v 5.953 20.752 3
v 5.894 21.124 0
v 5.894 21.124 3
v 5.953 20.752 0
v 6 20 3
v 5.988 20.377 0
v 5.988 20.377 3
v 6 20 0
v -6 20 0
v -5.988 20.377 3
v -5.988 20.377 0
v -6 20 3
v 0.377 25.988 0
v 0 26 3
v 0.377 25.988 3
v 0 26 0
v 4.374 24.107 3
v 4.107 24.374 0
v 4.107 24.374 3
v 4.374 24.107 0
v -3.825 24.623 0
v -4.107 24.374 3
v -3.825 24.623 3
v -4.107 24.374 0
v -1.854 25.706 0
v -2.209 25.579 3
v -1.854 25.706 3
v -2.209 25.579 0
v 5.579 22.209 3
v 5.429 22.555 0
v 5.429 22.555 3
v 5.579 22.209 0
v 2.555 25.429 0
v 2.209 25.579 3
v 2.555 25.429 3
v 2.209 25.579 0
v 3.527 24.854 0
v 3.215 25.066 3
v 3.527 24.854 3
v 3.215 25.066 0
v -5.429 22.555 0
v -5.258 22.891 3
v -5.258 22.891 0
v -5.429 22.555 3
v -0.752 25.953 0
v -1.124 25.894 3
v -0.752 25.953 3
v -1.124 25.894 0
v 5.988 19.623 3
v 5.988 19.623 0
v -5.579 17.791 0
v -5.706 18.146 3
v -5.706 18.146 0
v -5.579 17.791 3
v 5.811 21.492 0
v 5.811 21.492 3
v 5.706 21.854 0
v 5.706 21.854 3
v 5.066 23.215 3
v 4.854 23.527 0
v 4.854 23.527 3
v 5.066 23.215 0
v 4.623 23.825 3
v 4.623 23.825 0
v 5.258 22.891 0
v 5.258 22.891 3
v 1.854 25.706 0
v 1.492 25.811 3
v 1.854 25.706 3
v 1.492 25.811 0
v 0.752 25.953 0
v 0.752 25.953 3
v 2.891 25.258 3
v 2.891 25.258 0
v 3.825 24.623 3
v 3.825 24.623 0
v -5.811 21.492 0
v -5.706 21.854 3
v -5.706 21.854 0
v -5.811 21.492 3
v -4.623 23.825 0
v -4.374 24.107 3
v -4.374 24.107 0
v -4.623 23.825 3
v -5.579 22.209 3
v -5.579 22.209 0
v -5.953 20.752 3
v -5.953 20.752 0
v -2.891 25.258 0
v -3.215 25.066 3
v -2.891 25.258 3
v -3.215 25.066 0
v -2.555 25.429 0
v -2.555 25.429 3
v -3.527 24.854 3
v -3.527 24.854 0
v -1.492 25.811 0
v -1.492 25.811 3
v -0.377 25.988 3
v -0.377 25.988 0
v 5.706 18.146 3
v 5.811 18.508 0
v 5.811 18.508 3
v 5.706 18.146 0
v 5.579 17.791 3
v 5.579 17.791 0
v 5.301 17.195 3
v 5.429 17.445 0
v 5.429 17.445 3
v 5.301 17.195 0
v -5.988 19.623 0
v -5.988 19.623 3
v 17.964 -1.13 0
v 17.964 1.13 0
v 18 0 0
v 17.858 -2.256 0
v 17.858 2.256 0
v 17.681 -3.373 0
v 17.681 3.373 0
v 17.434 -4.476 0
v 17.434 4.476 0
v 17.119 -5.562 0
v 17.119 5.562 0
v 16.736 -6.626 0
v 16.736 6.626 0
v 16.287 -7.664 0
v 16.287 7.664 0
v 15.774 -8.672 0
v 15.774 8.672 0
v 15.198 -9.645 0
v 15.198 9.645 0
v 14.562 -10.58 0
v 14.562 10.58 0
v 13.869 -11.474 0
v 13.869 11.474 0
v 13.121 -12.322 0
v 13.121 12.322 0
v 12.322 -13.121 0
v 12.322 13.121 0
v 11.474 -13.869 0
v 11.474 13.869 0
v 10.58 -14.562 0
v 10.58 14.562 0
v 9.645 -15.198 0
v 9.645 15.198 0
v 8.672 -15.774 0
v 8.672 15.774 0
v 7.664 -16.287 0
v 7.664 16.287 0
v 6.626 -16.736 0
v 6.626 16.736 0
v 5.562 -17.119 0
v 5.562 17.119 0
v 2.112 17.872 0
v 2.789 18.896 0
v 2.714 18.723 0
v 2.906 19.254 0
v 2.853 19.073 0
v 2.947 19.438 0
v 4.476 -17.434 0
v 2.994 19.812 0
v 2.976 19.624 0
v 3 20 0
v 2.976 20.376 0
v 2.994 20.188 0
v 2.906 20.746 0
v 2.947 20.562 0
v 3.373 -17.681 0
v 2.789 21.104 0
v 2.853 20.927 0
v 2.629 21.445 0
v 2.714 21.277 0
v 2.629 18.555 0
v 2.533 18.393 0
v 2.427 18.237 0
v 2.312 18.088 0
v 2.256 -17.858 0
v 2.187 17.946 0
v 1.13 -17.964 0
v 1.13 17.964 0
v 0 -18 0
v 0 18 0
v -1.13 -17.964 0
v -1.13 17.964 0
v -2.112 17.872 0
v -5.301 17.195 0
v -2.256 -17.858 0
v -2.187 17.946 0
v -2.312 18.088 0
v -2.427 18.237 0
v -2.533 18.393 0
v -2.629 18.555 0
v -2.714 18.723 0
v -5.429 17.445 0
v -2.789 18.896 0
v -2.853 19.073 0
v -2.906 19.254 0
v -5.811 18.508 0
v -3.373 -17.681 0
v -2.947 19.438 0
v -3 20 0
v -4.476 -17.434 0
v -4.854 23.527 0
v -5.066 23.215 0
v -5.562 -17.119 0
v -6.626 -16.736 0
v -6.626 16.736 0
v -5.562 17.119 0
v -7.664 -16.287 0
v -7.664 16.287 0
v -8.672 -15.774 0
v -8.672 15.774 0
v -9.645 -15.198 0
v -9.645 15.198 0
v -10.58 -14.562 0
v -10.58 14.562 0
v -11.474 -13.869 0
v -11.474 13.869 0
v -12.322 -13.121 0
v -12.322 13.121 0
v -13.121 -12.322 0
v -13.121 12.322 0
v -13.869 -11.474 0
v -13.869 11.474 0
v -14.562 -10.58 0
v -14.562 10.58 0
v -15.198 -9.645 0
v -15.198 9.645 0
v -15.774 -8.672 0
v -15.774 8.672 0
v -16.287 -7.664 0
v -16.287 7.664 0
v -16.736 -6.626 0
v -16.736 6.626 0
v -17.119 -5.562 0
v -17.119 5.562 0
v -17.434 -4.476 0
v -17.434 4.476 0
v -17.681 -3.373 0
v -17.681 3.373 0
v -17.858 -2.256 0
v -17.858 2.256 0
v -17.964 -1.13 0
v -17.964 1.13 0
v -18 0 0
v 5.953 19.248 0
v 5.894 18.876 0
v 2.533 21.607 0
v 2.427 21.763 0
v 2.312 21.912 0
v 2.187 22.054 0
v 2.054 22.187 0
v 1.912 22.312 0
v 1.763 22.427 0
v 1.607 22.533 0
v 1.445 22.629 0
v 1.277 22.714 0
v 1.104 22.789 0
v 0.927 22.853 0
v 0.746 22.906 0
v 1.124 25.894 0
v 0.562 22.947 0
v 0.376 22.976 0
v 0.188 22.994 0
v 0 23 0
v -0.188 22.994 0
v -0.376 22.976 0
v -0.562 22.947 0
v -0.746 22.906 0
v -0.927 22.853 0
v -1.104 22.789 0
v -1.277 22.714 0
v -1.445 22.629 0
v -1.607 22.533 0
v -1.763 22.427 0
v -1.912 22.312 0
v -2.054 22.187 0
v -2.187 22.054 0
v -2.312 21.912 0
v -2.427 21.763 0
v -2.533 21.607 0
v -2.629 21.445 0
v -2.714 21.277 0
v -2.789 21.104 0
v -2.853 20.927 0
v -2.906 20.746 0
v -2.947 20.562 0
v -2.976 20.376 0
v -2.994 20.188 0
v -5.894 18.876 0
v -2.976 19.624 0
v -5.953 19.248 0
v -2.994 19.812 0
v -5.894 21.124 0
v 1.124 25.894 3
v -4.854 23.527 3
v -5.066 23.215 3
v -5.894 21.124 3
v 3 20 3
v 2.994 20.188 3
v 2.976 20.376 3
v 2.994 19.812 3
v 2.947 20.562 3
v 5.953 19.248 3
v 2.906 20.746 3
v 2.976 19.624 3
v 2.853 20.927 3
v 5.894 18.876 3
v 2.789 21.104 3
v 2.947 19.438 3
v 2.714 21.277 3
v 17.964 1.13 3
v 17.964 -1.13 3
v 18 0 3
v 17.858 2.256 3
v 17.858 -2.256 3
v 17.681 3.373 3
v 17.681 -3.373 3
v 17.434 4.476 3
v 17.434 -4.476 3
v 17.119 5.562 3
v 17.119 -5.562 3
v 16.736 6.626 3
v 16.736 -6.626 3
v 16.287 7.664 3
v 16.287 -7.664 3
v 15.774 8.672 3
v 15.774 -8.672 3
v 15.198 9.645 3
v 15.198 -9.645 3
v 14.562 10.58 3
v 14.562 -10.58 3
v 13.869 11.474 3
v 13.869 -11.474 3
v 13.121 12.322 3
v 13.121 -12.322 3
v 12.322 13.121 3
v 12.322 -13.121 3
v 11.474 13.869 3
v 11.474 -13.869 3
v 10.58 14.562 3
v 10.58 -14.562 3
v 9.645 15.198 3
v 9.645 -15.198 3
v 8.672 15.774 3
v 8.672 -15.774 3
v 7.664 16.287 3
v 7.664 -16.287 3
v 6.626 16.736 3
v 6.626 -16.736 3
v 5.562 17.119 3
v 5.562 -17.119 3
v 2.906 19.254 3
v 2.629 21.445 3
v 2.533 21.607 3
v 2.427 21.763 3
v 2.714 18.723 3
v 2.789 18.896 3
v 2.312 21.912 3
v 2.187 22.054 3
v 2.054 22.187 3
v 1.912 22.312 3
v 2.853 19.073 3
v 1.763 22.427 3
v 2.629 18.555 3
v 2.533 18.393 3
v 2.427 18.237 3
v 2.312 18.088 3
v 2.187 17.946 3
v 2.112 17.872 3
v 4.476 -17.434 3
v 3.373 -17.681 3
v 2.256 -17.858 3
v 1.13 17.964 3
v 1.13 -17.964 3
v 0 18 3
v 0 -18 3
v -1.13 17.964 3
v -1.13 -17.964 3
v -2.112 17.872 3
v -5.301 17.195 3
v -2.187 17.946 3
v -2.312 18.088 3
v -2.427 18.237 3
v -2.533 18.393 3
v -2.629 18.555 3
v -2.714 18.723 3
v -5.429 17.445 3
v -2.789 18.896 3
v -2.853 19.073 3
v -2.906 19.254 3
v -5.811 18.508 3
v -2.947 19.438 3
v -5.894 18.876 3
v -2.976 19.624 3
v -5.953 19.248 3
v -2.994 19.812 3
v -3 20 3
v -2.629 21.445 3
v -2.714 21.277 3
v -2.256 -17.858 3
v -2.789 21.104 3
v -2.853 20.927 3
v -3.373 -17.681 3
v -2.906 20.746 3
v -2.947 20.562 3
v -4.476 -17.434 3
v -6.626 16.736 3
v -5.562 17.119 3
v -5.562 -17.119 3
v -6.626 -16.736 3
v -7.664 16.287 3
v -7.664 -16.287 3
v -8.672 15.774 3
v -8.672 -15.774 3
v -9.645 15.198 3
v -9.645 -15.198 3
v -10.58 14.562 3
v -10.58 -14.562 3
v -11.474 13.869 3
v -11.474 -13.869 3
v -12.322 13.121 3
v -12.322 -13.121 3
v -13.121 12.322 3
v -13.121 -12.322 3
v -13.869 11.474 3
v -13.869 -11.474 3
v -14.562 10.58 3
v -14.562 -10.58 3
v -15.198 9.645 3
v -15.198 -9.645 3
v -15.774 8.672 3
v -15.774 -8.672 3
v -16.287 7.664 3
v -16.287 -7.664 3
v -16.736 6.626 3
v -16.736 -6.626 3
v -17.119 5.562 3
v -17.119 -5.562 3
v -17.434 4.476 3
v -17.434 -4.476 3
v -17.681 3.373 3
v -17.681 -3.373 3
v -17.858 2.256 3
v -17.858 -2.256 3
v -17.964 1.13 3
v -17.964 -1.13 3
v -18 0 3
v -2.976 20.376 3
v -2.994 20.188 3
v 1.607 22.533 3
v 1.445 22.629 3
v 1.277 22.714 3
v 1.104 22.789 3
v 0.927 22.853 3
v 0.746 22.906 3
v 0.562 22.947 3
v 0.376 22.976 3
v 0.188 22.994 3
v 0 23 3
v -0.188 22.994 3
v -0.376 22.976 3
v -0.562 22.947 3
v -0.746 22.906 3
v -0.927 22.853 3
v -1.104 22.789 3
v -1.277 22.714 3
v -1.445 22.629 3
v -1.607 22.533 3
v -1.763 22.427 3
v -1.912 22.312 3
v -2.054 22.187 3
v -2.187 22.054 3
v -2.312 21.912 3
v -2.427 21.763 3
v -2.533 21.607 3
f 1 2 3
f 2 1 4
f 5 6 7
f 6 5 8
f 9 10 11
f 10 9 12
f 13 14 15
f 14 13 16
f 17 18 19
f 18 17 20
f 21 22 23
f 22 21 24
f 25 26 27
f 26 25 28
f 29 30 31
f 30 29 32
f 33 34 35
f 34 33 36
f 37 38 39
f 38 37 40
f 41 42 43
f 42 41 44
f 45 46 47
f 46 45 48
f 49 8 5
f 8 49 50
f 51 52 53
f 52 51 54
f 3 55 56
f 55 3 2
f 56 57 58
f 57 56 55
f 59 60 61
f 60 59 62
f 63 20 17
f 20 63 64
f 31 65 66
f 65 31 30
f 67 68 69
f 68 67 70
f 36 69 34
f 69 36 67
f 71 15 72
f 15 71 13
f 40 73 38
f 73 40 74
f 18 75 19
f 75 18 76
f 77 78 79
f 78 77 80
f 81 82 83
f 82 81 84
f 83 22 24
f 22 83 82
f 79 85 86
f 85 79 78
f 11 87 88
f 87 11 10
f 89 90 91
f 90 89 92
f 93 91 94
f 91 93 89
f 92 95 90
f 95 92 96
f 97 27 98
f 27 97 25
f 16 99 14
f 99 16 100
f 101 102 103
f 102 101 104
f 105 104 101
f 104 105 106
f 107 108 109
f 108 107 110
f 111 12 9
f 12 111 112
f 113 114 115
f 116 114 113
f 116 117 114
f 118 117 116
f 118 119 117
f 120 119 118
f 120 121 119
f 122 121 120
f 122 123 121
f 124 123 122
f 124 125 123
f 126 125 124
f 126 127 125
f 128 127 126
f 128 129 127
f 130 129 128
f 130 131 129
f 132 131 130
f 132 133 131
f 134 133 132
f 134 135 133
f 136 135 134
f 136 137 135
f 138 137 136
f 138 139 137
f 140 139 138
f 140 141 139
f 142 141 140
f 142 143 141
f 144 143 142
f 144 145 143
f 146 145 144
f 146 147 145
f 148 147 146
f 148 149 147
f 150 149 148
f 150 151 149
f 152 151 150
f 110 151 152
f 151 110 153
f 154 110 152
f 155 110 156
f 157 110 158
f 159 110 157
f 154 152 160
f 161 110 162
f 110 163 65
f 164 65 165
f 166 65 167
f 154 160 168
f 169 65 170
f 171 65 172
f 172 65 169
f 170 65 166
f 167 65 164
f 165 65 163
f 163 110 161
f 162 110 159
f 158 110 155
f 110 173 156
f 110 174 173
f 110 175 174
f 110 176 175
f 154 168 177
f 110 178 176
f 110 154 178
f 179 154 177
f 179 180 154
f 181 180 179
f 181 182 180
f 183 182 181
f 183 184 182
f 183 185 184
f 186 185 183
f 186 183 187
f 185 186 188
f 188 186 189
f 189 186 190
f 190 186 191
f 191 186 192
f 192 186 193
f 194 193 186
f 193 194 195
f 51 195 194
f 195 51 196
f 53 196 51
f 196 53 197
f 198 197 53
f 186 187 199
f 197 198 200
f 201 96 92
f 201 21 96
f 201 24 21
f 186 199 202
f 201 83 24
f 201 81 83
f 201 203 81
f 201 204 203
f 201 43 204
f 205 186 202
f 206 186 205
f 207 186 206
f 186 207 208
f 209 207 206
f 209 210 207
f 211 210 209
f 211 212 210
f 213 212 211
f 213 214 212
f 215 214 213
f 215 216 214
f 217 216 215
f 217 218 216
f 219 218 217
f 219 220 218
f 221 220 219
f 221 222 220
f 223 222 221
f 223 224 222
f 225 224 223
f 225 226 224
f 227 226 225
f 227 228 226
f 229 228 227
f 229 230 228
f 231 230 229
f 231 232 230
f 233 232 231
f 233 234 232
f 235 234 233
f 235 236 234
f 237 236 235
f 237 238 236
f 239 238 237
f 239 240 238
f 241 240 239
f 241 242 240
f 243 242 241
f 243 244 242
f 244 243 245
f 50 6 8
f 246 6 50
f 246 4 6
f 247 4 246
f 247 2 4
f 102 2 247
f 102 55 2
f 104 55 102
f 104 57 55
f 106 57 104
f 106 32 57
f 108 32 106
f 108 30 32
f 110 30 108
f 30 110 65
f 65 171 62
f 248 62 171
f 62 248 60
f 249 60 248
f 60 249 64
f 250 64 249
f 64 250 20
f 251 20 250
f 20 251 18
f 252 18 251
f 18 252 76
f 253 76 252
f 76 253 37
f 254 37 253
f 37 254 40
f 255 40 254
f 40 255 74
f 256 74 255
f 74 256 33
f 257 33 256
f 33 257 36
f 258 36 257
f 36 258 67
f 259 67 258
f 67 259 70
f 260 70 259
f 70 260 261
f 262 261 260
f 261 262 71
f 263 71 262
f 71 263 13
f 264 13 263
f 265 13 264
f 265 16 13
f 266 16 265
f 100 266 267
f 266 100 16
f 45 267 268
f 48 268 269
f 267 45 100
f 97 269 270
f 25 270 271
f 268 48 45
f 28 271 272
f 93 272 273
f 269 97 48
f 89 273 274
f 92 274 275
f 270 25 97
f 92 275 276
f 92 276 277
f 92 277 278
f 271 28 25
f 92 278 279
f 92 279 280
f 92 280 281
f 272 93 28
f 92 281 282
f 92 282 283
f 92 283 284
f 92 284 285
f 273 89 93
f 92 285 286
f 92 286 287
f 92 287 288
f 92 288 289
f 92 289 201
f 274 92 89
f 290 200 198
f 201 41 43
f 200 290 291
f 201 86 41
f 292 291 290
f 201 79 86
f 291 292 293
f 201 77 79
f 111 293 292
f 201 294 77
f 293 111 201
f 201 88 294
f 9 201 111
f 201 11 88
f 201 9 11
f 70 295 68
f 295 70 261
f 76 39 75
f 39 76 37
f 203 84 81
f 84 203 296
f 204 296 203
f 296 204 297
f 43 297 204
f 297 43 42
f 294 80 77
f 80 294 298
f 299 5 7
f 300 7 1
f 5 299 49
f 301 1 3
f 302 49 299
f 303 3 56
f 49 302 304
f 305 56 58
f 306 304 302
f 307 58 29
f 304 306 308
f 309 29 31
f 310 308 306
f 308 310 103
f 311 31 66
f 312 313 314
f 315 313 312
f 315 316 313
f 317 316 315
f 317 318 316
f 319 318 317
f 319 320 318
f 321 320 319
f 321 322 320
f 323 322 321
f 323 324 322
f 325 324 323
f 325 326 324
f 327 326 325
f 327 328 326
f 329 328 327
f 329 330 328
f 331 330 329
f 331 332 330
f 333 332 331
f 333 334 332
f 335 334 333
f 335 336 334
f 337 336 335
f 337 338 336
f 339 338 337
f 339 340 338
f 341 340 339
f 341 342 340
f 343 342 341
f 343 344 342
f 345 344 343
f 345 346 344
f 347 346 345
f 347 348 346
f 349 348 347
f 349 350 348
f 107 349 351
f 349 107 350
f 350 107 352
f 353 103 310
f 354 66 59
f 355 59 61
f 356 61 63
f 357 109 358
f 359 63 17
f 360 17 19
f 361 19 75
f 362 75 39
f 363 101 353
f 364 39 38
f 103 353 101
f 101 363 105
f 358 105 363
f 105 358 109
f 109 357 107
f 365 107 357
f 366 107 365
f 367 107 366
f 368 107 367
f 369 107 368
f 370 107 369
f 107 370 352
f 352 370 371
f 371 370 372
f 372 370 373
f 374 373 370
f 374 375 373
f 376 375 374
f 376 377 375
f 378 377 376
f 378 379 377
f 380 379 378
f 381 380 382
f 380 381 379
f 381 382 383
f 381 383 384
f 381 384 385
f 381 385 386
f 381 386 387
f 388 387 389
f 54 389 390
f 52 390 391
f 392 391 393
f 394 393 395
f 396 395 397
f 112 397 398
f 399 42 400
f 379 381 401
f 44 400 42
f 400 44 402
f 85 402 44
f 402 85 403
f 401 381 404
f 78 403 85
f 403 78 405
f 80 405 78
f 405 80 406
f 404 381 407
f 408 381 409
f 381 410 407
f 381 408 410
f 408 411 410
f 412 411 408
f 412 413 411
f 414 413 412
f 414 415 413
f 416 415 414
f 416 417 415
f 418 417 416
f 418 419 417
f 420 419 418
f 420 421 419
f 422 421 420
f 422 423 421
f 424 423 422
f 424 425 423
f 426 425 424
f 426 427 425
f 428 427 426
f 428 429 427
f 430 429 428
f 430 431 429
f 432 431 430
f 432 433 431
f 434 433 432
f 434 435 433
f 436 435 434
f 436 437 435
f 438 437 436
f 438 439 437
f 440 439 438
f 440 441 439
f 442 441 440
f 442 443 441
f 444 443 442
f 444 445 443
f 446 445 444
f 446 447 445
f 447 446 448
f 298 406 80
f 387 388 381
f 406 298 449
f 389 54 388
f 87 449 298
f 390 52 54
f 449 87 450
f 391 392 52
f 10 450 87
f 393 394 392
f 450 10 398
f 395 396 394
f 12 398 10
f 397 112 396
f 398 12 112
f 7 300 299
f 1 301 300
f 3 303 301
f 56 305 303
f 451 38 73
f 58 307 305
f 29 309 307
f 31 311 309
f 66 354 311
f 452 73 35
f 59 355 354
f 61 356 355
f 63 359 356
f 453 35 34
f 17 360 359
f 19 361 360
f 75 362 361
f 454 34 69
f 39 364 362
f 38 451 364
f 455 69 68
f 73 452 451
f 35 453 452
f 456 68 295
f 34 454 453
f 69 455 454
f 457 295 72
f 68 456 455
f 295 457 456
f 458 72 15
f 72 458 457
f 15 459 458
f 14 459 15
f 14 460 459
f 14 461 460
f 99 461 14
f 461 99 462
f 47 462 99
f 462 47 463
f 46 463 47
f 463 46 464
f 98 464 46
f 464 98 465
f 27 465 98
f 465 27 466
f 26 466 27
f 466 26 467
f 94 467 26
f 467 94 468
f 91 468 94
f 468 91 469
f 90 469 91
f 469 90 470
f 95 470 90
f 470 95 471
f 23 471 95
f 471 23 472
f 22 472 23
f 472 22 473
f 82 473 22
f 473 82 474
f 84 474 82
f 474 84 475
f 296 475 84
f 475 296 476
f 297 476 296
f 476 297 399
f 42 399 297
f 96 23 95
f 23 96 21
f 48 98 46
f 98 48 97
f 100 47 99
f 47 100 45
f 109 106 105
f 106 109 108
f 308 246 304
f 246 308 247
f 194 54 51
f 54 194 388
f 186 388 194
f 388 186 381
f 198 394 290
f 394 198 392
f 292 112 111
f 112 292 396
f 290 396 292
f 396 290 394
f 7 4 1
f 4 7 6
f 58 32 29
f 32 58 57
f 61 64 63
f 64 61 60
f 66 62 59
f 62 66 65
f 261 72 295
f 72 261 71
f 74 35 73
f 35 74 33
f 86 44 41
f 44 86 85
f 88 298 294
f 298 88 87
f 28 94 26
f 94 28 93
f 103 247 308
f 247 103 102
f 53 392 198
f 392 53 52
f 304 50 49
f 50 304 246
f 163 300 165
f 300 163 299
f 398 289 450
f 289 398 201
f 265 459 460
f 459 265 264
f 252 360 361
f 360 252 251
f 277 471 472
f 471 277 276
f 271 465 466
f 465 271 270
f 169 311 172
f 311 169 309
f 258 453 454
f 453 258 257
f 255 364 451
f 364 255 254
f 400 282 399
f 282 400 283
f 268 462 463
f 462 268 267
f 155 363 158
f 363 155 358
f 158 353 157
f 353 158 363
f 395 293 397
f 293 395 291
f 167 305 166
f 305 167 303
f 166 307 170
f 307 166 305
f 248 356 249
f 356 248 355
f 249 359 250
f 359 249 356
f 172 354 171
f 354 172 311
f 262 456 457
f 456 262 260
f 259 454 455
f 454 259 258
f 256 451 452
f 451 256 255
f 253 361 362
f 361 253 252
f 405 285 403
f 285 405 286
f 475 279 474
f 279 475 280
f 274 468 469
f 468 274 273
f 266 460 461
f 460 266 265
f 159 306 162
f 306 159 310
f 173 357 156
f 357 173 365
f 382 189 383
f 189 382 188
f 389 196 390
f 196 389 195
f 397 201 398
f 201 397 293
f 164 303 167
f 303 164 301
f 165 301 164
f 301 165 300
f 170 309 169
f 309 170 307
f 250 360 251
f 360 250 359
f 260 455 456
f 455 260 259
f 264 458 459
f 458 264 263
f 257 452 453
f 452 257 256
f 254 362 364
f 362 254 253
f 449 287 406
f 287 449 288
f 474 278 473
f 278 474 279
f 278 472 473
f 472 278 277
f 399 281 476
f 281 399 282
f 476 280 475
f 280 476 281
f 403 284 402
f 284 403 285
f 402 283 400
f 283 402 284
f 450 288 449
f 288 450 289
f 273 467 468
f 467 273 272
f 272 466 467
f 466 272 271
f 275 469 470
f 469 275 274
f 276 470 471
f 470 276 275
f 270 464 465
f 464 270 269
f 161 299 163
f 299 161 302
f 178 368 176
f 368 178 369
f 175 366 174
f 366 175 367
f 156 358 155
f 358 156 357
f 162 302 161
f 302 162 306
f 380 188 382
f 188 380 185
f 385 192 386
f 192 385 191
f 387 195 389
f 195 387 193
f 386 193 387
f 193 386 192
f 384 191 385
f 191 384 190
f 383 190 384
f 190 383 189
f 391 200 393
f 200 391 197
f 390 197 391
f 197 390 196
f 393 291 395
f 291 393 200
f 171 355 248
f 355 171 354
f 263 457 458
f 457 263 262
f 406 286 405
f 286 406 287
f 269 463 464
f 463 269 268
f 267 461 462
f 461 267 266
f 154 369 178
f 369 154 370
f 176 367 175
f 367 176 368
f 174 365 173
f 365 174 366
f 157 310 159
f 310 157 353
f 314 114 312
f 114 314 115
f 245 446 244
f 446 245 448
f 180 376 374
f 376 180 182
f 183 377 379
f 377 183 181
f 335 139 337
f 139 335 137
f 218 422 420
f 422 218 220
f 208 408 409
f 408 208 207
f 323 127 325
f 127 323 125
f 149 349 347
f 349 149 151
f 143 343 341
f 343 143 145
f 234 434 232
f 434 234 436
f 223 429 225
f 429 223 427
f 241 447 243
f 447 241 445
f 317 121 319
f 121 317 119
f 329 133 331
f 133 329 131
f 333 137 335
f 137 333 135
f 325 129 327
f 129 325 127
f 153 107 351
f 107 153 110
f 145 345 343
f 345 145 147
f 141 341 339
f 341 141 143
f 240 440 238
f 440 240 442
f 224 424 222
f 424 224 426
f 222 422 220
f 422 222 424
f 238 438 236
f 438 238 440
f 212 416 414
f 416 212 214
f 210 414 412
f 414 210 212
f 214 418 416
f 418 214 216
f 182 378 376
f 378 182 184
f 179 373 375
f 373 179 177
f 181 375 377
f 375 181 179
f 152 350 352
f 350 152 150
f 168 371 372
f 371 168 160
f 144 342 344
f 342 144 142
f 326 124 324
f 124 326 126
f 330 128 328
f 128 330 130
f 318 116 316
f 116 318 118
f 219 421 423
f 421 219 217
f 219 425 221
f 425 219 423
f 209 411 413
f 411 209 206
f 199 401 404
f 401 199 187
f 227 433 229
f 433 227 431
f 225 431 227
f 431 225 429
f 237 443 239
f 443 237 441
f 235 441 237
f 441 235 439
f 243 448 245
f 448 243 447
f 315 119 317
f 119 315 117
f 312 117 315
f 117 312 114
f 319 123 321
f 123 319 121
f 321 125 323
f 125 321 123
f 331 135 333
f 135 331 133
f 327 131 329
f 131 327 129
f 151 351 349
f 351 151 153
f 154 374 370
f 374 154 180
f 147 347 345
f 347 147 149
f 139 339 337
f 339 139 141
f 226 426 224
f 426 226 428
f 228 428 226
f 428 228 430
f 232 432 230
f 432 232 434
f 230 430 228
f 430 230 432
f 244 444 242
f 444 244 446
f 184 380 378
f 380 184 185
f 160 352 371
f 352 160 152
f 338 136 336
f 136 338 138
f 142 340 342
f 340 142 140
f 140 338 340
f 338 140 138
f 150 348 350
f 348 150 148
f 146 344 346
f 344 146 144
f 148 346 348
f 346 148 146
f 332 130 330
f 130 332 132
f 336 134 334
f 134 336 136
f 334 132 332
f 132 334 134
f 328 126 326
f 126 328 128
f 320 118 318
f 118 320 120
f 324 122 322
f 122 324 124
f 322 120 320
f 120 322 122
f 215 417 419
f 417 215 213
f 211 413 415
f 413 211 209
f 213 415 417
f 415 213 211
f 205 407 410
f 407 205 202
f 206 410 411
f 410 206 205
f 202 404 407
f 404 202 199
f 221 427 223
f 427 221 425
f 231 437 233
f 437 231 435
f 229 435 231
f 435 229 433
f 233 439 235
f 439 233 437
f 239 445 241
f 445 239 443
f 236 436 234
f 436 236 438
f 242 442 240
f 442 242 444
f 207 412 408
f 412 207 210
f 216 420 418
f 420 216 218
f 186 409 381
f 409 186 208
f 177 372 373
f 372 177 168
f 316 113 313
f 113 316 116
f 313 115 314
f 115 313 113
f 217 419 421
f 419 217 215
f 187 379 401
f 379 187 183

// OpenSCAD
$fn = 100;
altura = 3;

union() {
    cylinder(h=altura, r=18); // Círculo
    
    // Argola
    translate([0, 20, 0]) 
    difference() {
        cylinder(h=altura, r=6);
        translate([0, 0, -1]) cylinder(h=altura+2, r=3);
    }
}
